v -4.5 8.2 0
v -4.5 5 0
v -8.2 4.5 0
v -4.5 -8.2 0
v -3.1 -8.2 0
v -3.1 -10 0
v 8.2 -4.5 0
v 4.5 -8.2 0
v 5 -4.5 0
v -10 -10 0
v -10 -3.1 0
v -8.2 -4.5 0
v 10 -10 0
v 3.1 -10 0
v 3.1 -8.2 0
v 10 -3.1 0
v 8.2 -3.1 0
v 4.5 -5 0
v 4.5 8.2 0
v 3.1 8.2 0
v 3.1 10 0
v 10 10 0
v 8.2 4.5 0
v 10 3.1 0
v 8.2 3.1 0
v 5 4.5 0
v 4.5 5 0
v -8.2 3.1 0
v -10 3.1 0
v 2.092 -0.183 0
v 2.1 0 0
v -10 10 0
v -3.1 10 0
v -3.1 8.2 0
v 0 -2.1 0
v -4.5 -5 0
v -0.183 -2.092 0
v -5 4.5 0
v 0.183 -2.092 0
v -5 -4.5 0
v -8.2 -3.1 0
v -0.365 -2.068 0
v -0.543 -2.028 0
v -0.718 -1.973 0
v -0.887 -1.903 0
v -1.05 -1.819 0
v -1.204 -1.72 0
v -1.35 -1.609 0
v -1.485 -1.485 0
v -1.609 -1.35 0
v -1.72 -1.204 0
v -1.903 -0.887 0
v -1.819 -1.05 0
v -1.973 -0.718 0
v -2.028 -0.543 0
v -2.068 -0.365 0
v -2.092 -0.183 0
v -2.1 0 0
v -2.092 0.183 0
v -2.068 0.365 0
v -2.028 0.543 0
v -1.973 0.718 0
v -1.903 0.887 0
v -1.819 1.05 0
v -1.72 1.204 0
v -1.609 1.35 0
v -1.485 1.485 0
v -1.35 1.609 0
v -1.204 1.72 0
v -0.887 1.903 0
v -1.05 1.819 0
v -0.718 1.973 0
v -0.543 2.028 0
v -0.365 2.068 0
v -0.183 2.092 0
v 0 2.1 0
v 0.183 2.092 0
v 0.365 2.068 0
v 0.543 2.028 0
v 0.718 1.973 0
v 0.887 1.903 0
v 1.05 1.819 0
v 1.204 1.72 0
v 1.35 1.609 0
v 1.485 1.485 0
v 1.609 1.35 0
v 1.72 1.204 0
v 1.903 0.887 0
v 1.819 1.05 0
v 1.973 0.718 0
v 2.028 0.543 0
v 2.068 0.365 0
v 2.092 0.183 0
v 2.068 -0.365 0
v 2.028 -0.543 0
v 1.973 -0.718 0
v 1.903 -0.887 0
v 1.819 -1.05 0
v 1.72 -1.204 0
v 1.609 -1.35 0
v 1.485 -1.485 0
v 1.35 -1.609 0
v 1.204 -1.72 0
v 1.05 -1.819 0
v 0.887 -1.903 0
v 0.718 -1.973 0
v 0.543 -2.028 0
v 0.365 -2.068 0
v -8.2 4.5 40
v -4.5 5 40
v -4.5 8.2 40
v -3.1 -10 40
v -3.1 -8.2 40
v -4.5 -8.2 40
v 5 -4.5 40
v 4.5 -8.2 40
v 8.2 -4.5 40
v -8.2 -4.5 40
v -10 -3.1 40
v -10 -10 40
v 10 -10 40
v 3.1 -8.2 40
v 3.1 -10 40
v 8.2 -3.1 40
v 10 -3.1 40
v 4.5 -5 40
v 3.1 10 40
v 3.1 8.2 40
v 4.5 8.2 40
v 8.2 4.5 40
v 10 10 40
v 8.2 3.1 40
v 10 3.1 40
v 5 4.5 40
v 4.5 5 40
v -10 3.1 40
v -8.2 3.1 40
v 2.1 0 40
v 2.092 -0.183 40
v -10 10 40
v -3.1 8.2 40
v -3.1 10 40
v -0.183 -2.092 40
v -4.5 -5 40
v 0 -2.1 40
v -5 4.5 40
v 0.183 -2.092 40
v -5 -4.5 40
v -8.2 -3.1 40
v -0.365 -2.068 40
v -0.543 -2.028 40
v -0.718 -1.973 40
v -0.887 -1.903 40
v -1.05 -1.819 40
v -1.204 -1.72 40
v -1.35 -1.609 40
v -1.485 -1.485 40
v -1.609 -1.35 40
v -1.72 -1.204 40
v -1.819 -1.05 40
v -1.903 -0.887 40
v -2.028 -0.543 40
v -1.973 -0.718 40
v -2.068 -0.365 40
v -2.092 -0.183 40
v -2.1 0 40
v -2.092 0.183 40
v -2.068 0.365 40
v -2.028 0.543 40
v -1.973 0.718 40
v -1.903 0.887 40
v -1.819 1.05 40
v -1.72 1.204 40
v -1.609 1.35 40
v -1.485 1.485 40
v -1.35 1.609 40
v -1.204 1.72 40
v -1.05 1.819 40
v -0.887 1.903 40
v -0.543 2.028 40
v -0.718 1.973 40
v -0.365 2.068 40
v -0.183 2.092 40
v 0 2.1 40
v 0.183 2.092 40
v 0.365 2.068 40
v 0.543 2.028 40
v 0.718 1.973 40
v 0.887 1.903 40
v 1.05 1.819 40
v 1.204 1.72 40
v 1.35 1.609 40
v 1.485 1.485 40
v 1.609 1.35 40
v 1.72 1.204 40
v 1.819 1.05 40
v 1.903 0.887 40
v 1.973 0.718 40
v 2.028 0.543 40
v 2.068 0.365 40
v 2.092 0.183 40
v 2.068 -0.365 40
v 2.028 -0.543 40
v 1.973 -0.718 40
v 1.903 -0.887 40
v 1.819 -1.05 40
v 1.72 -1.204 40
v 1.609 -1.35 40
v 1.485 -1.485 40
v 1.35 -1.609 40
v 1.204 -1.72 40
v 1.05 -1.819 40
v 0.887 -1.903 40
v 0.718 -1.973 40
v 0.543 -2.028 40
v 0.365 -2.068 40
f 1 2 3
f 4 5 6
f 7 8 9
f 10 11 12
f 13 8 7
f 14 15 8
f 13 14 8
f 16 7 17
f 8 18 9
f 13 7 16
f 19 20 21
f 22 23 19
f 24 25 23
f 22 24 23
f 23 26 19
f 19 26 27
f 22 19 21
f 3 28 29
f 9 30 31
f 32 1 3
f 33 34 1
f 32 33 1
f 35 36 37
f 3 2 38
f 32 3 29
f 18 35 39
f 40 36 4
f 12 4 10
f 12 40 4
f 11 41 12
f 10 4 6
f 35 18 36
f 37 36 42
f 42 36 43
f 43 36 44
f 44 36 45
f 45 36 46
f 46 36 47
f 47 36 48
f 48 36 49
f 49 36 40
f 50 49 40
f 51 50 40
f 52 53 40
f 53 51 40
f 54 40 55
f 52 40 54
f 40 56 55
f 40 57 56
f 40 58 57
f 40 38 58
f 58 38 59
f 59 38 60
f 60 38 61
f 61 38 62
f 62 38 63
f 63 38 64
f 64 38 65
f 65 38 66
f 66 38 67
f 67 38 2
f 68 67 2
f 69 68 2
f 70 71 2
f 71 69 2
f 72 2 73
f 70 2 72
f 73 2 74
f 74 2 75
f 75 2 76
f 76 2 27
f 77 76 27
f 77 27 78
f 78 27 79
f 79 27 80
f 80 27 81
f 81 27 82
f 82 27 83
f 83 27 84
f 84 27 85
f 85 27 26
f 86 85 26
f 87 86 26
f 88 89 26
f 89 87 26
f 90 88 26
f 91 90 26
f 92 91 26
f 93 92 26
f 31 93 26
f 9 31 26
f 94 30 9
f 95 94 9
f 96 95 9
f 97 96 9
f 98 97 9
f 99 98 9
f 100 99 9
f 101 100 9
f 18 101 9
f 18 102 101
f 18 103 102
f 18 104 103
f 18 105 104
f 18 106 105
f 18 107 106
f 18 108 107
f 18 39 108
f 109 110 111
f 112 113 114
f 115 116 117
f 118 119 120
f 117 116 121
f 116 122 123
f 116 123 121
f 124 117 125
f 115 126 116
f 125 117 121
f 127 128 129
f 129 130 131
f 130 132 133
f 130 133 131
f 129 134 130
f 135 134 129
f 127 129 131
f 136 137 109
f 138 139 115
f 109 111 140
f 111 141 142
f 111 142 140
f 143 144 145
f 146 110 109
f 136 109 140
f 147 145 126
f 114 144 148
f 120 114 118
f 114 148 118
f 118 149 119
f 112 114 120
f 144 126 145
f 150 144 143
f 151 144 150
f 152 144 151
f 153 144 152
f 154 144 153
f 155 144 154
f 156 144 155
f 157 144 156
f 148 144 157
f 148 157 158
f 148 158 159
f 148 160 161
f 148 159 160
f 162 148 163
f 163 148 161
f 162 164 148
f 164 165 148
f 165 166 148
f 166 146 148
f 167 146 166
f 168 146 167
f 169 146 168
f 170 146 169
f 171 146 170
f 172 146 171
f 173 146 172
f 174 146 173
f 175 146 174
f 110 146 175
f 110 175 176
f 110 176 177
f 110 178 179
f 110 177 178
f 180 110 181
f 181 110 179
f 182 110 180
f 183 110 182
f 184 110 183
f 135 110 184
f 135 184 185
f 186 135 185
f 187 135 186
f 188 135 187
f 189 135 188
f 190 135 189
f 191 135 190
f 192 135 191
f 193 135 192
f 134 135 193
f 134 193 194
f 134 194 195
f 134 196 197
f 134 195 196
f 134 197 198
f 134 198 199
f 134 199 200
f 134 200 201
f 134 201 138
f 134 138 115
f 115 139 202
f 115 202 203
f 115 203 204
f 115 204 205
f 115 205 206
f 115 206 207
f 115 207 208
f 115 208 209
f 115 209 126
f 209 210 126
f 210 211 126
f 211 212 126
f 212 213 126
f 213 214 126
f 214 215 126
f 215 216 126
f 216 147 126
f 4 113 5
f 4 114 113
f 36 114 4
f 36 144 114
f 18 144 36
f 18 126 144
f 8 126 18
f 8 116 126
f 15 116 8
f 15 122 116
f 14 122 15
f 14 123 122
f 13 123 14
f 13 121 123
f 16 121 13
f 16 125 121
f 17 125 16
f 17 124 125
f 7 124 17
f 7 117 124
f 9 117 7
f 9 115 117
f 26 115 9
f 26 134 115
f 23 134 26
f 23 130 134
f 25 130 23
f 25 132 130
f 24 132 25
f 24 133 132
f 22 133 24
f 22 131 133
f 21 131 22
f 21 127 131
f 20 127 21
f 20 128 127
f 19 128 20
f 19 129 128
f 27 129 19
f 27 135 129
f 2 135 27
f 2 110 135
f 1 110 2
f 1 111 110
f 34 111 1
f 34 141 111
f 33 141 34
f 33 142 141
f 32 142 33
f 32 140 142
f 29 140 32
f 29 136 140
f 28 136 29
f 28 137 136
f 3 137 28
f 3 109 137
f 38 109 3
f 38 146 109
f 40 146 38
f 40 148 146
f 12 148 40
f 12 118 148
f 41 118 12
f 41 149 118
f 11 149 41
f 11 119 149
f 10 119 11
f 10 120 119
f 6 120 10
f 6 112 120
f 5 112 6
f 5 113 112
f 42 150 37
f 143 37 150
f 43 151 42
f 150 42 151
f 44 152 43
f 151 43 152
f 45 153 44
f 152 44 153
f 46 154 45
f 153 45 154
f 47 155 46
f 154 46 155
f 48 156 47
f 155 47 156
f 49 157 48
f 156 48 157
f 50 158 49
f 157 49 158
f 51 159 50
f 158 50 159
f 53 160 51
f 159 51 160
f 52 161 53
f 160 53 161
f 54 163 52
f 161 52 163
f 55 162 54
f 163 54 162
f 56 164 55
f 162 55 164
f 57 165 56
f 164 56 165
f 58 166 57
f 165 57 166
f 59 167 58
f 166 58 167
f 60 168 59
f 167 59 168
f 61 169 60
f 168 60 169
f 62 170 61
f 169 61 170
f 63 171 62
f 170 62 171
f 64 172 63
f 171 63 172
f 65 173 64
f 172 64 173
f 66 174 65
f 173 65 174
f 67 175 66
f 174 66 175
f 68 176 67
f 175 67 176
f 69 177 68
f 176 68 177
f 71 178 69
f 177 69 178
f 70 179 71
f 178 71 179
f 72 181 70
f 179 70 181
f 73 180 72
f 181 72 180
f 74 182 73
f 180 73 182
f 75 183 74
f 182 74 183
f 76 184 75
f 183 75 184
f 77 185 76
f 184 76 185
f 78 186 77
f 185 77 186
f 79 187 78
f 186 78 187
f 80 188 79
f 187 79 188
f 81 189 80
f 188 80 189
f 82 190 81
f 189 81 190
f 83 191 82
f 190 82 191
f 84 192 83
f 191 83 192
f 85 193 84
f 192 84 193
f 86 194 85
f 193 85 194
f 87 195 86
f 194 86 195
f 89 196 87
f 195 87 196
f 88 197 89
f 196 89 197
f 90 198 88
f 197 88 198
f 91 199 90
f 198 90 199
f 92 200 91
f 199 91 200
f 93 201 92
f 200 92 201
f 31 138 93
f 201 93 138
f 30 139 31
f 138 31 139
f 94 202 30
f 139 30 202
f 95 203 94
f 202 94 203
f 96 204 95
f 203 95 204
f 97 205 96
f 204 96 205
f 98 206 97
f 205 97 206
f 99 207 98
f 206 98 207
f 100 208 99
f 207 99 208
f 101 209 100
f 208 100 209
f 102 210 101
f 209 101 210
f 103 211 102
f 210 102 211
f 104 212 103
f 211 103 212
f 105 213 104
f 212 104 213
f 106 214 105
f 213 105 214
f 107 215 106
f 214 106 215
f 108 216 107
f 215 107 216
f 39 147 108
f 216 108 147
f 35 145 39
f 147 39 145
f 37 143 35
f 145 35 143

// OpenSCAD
// Generated by DXF to 3D (https://github.com) - open in OpenSCAD
depth = 40;
scale_factor = 1;

scale([scale_factor, scale_factor, 1])
union() {
  linear_extrude(height = depth)
    polygon(points = [[-10,-10],[-3.1,-10],[-3.1,-8.2],[-4.5,-8.2],[-4.5,-5],[4.5,-5],[4.5,-8.2],[3.1,-8.2],[3.1,-10],[10,-10],[10,-3.1],[8.2,-3.1],[8.2,-4.5],[5,-4.5],[5,4.5],[8.2,4.5],[8.2,3.1],[10,3.1],[10,10],[3.1,10],[3.1,8.2],[4.5,8.2],[4.5,5],[-4.5,5],[-4.5,8.2],[-3.1,8.2],[-3.1,10],[-10,10],[-10,3.1],[-8.2,3.1],[-8.2,4.5],[-5,4.5],[-5,-4.5],[-8.2,-4.5],[-8.2,-3.1],[-10,-3.1],[2.1,0],[2.092,0.183],[2.0681,0.3647],[2.0284,0.5435],[1.9734,0.7182],[1.9032,0.8875],[1.8187,1.05],[1.7202,1.2045],[1.6087,1.3499],[1.4849,1.4849],[1.3499,1.6087],[1.2045,1.7202],[1.05,1.8187],[0.8875,1.9032],[0.7182,1.9734],[0.5435,2.0284],[0.3647,2.0681],[0.183,2.092],[0,2.1],[-0.183,2.092],[-0.3647,2.0681],[-0.5435,2.0284],[-0.7182,1.9734],[-0.8875,1.9032],[-1.05,1.8187],[-1.2045,1.7202],[-1.3499,1.6087],[-1.4849,1.4849],[-1.6087,1.3499],[-1.7202,1.2045],[-1.8187,1.05],[-1.9032,0.8875],[-1.9734,0.7182],[-2.0284,0.5435],[-2.0681,0.3647],[-2.092,0.183],[-2.1,0],[-2.092,-0.183],[-2.0681,-0.3647],[-2.0284,-0.5435],[-1.9734,-0.7182],[-1.9032,-0.8875],[-1.8187,-1.05],[-1.7202,-1.2045],[-1.6087,-1.3499],[-1.4849,-1.4849],[-1.3499,-1.6087],[-1.2045,-1.7202],[-1.05,-1.8187],[-0.8875,-1.9032],[-0.7182,-1.9734],[-0.5435,-2.0284],[-0.3647,-2.0681],[-0.183,-2.092],[0,-2.1],[0.183,-2.092],[0.3647,-2.0681],[0.5435,-2.0284],[0.7182,-1.9734],[0.8875,-1.9032],[1.05,-1.8187],[1.2045,-1.7202],[1.3499,-1.6087],[1.4849,-1.4849],[1.6087,-1.3499],[1.7202,-1.2045],[1.8187,-1.05],[1.9032,-0.8875],[1.9734,-0.7182],[2.0284,-0.5435],[2.0681,-0.3647],[2.092,-0.183]],
      paths = [[0,1,2,3,4,5,6,7,8,9,10,11,12,13,14,15,16,17,18,19,20,21,22,23,24,25,26,27,28,29,30,31,32,33,34,35],[36,37,38,39,40,41,42,43,44,45,46,47,48,49,50,51,52,53,54,55,56,57,58,59,60,61,62,63,64,65,66,67,68,69,70,71,72,73,74,75,76,77,78,79,80,81,82,83,84,85,86,87,88,89,90,91,92,93,94,95,96,97,98,99,100,101,102,103,104,105,106,107]]);
}
